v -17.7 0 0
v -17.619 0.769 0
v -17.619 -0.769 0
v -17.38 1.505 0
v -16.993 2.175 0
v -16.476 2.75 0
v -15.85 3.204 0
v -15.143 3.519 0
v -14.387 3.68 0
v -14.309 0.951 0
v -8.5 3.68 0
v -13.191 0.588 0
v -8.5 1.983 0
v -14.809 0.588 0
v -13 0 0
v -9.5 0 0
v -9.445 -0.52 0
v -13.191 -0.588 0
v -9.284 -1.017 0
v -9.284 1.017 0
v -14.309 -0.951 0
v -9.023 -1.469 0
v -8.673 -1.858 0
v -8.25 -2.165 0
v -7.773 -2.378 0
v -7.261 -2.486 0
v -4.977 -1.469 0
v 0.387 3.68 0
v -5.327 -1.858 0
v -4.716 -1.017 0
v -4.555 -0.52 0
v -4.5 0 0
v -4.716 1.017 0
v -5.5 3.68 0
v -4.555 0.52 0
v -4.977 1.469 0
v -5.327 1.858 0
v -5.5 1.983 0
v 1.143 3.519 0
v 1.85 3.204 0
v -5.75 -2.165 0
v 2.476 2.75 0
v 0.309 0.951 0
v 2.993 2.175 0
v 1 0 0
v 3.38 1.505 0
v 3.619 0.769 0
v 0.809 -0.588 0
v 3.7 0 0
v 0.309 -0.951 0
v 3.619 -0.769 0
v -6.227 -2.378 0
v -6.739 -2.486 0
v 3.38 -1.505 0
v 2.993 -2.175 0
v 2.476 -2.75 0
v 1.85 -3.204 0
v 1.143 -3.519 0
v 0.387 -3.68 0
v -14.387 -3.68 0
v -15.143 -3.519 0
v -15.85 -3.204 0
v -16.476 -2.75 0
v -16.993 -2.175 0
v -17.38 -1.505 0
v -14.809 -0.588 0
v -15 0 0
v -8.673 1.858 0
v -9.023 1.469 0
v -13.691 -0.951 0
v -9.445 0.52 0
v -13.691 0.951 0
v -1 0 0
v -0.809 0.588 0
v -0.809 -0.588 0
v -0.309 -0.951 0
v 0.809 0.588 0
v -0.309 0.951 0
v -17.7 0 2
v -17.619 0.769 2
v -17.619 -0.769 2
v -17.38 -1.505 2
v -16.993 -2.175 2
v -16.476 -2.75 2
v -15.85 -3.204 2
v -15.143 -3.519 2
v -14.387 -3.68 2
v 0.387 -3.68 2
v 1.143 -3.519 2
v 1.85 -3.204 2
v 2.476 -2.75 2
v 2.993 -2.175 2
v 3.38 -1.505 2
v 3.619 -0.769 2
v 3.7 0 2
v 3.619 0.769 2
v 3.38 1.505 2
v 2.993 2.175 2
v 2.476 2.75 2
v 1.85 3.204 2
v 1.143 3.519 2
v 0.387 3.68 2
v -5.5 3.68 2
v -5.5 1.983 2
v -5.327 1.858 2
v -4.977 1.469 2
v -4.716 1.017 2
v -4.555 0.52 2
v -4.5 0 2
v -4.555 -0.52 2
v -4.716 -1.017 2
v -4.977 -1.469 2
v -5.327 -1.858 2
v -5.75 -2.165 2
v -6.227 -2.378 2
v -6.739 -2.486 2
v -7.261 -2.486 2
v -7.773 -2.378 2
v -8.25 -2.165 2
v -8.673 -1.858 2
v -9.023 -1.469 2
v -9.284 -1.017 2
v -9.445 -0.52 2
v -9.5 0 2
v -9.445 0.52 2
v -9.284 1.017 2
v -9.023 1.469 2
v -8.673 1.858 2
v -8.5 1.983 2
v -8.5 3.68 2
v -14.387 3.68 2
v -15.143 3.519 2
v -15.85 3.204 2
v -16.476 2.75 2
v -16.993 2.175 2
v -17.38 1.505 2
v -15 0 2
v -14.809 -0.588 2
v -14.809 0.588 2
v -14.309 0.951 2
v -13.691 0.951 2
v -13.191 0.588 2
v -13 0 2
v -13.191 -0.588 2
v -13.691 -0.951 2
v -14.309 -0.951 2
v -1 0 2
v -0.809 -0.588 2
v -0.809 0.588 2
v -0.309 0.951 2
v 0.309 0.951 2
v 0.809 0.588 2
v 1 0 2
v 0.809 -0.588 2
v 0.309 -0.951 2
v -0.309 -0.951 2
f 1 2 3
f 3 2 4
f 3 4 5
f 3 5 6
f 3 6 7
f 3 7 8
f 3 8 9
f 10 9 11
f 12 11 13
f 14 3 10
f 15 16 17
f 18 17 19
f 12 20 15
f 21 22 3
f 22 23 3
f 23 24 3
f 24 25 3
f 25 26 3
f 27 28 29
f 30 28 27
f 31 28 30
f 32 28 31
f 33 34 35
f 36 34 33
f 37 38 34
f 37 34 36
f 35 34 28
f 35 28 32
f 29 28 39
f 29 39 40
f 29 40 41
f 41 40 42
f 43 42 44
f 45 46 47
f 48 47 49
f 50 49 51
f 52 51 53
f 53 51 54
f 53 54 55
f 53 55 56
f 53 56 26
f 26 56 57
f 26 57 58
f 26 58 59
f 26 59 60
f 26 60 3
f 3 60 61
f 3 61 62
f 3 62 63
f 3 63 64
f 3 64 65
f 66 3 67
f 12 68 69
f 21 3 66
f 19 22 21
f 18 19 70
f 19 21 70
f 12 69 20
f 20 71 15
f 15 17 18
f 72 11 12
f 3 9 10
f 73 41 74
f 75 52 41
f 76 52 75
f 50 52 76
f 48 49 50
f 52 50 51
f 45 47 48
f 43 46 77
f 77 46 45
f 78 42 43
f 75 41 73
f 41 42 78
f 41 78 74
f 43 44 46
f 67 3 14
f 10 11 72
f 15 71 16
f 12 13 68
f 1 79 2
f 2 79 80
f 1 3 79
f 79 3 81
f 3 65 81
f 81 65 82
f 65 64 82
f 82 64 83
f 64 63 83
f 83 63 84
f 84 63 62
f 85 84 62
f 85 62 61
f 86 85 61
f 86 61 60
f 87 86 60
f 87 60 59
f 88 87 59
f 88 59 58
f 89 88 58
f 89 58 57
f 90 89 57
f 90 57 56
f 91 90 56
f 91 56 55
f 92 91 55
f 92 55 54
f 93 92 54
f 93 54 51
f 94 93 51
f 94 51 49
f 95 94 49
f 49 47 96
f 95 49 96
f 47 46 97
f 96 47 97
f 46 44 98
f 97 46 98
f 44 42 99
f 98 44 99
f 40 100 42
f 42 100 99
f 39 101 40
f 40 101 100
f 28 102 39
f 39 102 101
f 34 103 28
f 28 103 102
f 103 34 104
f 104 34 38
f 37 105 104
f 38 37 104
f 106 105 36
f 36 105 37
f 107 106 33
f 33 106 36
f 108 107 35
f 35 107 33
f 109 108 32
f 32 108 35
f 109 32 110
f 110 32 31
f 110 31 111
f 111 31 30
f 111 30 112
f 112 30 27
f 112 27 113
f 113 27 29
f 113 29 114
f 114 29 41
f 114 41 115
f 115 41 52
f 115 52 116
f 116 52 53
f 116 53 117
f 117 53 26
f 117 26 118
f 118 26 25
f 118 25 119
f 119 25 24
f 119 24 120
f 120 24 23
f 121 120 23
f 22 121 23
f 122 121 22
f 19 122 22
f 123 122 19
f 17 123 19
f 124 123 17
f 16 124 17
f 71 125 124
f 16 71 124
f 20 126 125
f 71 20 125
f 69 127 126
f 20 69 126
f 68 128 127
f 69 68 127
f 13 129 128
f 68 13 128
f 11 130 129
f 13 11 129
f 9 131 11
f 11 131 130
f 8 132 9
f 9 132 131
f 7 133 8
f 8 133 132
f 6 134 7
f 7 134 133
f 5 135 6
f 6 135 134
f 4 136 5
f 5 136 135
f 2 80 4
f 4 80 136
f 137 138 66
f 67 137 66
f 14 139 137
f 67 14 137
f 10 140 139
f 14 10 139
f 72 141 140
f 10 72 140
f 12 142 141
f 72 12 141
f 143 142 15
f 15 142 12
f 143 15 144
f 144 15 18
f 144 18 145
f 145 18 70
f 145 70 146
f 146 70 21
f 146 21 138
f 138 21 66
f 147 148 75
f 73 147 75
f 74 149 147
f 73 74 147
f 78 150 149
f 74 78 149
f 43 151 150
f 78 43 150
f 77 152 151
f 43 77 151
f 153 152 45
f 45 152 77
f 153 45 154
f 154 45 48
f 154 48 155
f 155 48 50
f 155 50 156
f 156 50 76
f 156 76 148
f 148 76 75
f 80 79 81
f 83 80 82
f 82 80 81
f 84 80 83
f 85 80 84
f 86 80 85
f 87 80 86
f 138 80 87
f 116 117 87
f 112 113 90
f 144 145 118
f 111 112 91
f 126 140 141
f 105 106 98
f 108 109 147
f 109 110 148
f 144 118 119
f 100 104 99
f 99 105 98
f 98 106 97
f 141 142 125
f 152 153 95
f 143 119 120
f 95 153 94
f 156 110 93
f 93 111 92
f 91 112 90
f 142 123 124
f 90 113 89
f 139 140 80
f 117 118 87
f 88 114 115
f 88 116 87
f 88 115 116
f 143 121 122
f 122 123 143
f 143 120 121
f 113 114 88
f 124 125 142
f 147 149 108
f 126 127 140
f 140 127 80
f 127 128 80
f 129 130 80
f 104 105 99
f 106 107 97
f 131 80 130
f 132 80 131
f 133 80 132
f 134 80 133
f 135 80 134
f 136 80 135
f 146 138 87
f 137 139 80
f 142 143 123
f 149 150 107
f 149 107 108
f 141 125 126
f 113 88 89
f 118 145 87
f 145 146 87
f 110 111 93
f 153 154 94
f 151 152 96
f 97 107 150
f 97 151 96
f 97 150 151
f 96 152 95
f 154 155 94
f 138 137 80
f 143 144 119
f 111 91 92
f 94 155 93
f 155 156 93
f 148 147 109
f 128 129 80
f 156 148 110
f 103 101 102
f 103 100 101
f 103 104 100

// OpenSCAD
difference(){
hull(){
	translate([-14,0])cylinder(r=3.7,h=2,$fn=30);
	translate([0,0,0])cylinder(r=3.7,h=2,$fn=30);
}
translate([-14,0,-1])cylinder(r=1,h=4,$fn=10);
translate([0,0,-1])cylinder(r=1,h=4,$fn=10);
translate([-7,0,-1])cylinder(r=2.5,h=4,$fn=30);
translate([-8.5,1,-0.5])cube(3);
}
